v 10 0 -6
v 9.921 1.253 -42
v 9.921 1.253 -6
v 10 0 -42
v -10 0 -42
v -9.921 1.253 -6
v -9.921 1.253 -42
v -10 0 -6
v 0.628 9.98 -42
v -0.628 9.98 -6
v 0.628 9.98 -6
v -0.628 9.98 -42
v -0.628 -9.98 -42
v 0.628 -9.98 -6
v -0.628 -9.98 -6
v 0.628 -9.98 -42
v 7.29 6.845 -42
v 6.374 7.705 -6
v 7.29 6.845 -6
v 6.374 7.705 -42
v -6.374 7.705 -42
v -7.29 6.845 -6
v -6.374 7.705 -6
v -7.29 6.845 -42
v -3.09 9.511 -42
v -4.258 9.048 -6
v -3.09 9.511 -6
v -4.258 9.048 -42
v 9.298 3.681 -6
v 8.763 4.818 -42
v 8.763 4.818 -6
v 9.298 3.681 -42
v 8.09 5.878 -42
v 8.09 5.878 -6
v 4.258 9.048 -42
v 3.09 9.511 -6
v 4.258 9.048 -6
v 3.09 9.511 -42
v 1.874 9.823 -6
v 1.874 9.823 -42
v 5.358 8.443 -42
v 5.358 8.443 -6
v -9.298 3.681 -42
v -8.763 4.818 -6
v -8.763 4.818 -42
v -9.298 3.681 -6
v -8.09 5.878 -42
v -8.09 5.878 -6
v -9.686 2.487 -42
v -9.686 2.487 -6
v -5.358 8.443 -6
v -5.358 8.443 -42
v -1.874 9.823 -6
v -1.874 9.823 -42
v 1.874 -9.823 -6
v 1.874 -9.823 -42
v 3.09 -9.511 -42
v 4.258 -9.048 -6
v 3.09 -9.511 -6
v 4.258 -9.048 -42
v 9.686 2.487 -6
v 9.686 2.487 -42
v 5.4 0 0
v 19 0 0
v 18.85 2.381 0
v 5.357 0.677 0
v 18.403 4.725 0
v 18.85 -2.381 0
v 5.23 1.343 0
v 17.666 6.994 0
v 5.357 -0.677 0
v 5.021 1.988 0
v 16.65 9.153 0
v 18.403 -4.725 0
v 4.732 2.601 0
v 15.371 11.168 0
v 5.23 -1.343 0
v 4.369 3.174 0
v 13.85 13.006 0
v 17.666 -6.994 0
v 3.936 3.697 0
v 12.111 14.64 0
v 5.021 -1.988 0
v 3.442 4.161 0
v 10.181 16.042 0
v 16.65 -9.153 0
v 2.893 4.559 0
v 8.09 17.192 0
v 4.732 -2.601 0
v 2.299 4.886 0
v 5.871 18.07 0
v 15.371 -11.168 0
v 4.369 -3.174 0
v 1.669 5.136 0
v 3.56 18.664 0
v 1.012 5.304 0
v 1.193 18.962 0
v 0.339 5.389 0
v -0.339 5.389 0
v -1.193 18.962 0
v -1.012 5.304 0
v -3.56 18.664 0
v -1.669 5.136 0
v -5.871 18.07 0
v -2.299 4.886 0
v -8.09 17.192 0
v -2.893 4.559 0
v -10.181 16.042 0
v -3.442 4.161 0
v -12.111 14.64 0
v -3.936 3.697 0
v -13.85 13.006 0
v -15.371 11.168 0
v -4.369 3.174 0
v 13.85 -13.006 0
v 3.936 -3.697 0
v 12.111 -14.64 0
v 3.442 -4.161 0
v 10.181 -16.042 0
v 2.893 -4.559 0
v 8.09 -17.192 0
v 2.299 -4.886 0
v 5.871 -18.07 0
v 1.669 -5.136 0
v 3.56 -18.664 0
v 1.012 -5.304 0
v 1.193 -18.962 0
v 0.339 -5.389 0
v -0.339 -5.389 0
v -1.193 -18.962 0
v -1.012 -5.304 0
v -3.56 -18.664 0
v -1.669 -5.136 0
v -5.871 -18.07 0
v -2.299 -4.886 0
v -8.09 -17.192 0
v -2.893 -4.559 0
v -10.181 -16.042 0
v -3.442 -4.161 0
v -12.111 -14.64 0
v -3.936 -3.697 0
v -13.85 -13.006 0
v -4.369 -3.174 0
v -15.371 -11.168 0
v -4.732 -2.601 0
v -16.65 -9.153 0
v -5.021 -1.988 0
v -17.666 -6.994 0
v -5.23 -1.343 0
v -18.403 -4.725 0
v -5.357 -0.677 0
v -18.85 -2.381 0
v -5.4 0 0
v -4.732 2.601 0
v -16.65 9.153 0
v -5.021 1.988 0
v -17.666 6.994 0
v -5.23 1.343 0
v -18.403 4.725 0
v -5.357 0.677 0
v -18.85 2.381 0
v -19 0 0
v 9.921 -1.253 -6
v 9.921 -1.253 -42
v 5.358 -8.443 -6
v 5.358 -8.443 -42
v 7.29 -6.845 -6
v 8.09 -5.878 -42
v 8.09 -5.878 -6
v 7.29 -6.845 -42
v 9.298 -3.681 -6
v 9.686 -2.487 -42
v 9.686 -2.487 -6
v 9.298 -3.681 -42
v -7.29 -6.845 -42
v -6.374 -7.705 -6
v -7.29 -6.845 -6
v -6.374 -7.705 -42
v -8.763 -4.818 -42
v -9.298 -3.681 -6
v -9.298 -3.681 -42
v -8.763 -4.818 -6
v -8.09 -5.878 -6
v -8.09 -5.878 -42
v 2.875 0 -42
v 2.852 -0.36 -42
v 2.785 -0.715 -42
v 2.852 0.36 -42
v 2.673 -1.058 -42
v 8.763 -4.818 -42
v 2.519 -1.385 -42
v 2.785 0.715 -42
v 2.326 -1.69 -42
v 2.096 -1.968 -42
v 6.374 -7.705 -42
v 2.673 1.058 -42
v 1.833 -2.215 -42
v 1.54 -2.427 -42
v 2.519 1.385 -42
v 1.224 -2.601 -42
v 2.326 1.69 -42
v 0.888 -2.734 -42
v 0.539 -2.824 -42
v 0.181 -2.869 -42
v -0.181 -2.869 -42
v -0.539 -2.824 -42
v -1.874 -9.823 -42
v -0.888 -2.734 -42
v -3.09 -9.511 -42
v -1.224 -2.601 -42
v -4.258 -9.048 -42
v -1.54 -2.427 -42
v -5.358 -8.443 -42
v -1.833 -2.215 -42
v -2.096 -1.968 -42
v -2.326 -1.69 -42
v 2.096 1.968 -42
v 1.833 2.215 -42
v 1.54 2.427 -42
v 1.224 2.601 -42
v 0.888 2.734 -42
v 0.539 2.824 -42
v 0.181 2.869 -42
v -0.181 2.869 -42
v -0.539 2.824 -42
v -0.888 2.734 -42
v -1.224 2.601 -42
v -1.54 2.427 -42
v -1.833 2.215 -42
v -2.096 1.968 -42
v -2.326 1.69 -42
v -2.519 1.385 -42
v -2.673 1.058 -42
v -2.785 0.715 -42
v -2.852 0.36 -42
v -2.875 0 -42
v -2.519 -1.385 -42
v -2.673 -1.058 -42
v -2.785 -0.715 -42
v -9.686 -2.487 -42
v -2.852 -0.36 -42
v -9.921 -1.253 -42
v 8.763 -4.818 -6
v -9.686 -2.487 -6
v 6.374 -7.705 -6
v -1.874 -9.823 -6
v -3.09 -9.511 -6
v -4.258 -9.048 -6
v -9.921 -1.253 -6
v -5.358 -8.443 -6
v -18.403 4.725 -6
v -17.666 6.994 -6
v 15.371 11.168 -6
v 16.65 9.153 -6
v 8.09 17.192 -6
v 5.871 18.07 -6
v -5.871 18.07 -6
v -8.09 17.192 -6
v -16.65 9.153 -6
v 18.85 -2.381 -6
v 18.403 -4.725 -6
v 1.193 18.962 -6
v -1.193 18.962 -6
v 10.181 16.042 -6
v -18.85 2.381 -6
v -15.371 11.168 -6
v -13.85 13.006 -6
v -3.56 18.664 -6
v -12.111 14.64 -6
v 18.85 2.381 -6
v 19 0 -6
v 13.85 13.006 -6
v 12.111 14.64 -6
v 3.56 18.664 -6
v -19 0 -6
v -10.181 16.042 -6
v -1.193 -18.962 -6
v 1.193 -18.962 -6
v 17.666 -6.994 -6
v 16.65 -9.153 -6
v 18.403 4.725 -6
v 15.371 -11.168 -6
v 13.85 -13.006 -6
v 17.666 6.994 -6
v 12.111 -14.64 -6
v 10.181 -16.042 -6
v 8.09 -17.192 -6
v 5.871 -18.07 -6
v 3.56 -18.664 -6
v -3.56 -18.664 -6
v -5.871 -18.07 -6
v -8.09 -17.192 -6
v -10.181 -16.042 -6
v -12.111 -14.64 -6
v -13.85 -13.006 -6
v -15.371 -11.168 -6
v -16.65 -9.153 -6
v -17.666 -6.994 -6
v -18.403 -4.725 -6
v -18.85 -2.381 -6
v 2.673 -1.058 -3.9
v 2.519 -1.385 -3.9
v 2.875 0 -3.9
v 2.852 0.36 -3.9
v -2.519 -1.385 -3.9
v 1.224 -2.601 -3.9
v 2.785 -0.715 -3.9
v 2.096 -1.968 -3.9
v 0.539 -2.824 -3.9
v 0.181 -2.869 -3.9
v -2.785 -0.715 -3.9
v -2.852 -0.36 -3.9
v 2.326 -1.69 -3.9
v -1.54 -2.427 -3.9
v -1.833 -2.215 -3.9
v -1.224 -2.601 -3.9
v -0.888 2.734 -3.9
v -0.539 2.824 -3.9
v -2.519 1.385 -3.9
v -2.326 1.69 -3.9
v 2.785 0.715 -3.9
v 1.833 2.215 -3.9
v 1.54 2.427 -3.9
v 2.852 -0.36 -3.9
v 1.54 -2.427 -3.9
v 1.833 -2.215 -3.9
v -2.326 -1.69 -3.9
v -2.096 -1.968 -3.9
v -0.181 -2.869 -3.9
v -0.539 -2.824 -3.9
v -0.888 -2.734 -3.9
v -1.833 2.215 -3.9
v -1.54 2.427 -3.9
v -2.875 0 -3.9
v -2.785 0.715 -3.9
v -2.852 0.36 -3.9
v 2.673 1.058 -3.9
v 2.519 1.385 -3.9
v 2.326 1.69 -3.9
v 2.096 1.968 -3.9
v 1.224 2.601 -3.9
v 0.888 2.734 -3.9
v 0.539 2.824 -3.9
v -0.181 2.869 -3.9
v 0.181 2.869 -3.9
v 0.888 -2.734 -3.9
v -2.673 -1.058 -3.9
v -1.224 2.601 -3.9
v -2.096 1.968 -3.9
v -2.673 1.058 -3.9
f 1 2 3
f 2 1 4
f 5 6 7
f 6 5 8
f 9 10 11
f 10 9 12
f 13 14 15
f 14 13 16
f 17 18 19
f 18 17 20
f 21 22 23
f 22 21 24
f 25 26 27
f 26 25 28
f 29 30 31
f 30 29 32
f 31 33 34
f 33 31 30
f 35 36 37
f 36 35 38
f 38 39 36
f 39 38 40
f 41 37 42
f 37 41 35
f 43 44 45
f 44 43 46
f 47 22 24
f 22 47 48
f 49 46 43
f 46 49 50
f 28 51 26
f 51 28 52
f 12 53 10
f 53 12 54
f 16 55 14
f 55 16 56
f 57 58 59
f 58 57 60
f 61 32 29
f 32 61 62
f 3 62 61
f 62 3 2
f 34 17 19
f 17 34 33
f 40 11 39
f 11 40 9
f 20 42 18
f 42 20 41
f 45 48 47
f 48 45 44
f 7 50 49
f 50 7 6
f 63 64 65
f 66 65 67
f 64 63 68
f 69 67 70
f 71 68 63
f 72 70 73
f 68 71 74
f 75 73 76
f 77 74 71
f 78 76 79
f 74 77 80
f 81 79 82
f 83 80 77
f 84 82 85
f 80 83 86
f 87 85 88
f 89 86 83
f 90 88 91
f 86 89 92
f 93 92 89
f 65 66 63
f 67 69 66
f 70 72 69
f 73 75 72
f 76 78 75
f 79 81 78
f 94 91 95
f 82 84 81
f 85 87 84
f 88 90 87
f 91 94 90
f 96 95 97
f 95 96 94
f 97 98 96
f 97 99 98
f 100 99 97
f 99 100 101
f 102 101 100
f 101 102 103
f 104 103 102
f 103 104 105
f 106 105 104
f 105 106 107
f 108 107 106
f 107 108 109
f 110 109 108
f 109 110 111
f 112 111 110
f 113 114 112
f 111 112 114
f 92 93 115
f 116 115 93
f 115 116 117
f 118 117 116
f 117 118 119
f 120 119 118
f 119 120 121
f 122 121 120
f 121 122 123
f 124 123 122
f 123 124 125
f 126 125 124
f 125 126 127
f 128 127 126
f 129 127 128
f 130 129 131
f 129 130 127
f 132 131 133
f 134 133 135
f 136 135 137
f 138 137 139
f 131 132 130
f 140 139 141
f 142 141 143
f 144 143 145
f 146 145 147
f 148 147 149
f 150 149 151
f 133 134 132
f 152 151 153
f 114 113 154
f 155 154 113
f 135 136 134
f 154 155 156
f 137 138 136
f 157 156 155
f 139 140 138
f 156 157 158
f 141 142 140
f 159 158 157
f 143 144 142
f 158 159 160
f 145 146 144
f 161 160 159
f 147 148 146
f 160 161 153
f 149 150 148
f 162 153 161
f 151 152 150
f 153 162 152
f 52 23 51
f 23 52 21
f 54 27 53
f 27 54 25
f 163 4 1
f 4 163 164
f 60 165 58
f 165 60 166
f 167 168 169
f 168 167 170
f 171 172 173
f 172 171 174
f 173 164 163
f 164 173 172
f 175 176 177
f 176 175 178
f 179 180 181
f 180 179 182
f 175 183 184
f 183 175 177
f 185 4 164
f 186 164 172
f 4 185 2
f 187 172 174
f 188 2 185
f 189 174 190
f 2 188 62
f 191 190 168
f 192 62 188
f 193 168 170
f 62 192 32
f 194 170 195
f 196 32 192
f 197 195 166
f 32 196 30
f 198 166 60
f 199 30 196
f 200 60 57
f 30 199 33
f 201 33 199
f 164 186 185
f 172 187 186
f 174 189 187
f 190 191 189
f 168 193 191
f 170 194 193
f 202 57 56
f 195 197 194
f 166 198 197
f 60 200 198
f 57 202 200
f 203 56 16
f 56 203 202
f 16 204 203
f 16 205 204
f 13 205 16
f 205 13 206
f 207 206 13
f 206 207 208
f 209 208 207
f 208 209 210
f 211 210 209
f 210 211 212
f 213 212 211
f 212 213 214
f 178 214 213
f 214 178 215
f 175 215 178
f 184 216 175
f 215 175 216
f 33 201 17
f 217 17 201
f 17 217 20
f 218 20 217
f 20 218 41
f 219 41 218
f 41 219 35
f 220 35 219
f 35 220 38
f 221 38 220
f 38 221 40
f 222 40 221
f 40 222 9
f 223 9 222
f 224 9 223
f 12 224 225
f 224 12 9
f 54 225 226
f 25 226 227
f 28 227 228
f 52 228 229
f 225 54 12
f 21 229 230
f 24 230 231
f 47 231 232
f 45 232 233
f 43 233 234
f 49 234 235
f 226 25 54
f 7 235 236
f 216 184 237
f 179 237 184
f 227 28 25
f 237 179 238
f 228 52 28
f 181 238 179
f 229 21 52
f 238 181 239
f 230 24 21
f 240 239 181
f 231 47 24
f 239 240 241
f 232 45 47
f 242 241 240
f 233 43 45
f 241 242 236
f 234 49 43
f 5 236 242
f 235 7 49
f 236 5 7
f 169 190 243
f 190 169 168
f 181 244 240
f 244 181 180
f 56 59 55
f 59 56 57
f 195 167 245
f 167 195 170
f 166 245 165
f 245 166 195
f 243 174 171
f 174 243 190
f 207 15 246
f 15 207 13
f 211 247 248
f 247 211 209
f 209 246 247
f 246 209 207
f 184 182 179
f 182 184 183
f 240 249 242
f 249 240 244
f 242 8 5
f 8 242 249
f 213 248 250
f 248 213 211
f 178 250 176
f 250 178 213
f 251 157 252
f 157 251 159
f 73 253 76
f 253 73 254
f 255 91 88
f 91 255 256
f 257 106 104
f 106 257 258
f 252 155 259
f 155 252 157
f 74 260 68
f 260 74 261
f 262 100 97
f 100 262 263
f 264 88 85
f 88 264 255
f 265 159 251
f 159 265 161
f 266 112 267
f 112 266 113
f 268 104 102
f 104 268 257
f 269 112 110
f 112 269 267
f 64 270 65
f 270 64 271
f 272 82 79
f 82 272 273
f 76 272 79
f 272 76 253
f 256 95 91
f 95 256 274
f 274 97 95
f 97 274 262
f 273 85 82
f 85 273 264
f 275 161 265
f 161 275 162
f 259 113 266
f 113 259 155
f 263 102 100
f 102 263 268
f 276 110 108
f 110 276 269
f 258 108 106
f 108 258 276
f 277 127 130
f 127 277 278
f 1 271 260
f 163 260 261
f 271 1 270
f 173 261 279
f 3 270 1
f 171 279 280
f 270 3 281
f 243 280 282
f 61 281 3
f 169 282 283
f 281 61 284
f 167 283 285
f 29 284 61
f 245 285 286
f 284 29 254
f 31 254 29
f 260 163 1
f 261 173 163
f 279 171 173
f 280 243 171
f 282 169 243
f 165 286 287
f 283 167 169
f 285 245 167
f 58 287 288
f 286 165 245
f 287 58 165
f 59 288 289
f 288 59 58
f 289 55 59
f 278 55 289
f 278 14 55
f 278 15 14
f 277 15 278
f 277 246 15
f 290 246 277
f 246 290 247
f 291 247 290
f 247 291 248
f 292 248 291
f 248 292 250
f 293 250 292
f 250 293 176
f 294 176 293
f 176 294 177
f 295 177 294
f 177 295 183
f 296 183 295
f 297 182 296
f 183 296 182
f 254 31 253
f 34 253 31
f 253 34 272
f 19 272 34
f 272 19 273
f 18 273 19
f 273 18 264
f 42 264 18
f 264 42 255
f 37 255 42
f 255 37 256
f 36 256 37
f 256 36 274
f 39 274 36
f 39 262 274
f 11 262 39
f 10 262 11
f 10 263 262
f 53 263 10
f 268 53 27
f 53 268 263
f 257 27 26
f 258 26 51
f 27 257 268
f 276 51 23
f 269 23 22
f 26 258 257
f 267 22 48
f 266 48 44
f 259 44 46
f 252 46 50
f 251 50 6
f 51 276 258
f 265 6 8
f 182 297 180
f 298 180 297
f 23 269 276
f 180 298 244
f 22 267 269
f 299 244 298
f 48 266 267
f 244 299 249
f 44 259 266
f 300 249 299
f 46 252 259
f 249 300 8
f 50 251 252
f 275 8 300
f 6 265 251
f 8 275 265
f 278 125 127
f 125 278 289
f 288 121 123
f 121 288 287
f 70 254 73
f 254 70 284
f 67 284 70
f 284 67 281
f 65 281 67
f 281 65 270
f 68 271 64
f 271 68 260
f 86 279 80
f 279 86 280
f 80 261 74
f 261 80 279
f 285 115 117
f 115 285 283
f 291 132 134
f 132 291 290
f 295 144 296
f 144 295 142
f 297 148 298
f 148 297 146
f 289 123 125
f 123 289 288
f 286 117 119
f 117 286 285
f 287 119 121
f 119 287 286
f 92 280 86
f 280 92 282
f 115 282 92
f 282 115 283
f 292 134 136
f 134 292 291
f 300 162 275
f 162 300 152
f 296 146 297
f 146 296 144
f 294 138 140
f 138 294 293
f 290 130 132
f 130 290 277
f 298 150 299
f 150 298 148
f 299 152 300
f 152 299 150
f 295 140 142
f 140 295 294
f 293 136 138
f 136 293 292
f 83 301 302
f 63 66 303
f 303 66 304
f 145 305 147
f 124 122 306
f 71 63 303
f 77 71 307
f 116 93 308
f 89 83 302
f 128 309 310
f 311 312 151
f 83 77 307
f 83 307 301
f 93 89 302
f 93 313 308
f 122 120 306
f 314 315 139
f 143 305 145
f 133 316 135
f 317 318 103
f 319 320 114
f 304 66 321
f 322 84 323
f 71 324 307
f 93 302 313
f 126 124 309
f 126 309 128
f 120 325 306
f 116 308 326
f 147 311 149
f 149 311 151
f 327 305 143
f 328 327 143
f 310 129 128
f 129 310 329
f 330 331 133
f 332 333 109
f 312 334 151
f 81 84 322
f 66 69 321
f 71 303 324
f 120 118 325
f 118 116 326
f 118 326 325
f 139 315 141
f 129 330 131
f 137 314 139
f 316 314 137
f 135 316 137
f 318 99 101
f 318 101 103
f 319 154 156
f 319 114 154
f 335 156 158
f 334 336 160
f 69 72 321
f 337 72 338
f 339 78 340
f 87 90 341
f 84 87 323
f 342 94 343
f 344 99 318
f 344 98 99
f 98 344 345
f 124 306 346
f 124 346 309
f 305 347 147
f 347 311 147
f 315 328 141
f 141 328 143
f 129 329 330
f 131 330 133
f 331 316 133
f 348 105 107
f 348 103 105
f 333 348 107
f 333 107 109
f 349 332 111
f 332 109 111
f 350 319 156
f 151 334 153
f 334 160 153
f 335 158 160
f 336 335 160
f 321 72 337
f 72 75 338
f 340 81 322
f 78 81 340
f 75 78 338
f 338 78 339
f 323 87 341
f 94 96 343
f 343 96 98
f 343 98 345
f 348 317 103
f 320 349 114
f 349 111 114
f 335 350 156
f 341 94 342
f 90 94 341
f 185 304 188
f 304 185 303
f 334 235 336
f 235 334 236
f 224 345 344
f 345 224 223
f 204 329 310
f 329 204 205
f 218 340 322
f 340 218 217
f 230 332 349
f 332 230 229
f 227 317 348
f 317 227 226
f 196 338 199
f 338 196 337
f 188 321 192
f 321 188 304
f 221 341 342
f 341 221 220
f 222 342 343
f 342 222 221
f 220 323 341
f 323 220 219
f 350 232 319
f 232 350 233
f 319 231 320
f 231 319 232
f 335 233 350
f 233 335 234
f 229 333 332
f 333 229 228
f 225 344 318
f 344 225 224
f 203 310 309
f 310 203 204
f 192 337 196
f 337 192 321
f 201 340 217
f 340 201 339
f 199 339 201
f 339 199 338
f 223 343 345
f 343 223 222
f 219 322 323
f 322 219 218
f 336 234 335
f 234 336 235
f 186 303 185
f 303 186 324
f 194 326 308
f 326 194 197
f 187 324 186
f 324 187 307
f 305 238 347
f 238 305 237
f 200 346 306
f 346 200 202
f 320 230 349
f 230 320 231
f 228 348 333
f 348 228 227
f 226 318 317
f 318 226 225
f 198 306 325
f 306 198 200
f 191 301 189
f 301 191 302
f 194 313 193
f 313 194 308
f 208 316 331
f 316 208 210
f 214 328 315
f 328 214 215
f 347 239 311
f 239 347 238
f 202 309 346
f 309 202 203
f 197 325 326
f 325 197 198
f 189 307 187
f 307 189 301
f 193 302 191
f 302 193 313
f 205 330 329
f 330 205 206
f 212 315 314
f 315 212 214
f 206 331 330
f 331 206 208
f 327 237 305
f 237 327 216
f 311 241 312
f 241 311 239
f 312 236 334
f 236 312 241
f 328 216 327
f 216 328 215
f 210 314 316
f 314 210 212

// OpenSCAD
$fn = 50;


difference() {
	union() {
		translate(v = [0, 0, -42.0000000000]) {
			cylinder(h = 42, r = 10.0000000000);
		}
		translate(v = [0, 0, -6.0000000000]) {
			cylinder(h = 6, r = 19.0000000000);
		}
	}
	union() {
		translate(v = [0, 0, 0]) {
			rotate(a = [0, 0, 0]) {
				difference() {
					union() {
						#translate(v = [0, 0, -42.0000000000]) {
							cylinder(h = 42, r = 2.6000000000);
						}
						#translate(v = [0, 0, -3.9000000000]) {
							cylinder(h = 3.9000000000, r1 = 2.8750000000, r2 = 5.4000000000);
						}
						#translate(v = [0, 0, -42.0000000000]) {
							cylinder(h = 42, r = 2.8750000000);
						}
						#translate(v = [0, 0, -42.0000000000]) {
							cylinder(h = 42, r = 2.6000000000);
						}
					}
					union();
				}
			}
		}
	}
}
